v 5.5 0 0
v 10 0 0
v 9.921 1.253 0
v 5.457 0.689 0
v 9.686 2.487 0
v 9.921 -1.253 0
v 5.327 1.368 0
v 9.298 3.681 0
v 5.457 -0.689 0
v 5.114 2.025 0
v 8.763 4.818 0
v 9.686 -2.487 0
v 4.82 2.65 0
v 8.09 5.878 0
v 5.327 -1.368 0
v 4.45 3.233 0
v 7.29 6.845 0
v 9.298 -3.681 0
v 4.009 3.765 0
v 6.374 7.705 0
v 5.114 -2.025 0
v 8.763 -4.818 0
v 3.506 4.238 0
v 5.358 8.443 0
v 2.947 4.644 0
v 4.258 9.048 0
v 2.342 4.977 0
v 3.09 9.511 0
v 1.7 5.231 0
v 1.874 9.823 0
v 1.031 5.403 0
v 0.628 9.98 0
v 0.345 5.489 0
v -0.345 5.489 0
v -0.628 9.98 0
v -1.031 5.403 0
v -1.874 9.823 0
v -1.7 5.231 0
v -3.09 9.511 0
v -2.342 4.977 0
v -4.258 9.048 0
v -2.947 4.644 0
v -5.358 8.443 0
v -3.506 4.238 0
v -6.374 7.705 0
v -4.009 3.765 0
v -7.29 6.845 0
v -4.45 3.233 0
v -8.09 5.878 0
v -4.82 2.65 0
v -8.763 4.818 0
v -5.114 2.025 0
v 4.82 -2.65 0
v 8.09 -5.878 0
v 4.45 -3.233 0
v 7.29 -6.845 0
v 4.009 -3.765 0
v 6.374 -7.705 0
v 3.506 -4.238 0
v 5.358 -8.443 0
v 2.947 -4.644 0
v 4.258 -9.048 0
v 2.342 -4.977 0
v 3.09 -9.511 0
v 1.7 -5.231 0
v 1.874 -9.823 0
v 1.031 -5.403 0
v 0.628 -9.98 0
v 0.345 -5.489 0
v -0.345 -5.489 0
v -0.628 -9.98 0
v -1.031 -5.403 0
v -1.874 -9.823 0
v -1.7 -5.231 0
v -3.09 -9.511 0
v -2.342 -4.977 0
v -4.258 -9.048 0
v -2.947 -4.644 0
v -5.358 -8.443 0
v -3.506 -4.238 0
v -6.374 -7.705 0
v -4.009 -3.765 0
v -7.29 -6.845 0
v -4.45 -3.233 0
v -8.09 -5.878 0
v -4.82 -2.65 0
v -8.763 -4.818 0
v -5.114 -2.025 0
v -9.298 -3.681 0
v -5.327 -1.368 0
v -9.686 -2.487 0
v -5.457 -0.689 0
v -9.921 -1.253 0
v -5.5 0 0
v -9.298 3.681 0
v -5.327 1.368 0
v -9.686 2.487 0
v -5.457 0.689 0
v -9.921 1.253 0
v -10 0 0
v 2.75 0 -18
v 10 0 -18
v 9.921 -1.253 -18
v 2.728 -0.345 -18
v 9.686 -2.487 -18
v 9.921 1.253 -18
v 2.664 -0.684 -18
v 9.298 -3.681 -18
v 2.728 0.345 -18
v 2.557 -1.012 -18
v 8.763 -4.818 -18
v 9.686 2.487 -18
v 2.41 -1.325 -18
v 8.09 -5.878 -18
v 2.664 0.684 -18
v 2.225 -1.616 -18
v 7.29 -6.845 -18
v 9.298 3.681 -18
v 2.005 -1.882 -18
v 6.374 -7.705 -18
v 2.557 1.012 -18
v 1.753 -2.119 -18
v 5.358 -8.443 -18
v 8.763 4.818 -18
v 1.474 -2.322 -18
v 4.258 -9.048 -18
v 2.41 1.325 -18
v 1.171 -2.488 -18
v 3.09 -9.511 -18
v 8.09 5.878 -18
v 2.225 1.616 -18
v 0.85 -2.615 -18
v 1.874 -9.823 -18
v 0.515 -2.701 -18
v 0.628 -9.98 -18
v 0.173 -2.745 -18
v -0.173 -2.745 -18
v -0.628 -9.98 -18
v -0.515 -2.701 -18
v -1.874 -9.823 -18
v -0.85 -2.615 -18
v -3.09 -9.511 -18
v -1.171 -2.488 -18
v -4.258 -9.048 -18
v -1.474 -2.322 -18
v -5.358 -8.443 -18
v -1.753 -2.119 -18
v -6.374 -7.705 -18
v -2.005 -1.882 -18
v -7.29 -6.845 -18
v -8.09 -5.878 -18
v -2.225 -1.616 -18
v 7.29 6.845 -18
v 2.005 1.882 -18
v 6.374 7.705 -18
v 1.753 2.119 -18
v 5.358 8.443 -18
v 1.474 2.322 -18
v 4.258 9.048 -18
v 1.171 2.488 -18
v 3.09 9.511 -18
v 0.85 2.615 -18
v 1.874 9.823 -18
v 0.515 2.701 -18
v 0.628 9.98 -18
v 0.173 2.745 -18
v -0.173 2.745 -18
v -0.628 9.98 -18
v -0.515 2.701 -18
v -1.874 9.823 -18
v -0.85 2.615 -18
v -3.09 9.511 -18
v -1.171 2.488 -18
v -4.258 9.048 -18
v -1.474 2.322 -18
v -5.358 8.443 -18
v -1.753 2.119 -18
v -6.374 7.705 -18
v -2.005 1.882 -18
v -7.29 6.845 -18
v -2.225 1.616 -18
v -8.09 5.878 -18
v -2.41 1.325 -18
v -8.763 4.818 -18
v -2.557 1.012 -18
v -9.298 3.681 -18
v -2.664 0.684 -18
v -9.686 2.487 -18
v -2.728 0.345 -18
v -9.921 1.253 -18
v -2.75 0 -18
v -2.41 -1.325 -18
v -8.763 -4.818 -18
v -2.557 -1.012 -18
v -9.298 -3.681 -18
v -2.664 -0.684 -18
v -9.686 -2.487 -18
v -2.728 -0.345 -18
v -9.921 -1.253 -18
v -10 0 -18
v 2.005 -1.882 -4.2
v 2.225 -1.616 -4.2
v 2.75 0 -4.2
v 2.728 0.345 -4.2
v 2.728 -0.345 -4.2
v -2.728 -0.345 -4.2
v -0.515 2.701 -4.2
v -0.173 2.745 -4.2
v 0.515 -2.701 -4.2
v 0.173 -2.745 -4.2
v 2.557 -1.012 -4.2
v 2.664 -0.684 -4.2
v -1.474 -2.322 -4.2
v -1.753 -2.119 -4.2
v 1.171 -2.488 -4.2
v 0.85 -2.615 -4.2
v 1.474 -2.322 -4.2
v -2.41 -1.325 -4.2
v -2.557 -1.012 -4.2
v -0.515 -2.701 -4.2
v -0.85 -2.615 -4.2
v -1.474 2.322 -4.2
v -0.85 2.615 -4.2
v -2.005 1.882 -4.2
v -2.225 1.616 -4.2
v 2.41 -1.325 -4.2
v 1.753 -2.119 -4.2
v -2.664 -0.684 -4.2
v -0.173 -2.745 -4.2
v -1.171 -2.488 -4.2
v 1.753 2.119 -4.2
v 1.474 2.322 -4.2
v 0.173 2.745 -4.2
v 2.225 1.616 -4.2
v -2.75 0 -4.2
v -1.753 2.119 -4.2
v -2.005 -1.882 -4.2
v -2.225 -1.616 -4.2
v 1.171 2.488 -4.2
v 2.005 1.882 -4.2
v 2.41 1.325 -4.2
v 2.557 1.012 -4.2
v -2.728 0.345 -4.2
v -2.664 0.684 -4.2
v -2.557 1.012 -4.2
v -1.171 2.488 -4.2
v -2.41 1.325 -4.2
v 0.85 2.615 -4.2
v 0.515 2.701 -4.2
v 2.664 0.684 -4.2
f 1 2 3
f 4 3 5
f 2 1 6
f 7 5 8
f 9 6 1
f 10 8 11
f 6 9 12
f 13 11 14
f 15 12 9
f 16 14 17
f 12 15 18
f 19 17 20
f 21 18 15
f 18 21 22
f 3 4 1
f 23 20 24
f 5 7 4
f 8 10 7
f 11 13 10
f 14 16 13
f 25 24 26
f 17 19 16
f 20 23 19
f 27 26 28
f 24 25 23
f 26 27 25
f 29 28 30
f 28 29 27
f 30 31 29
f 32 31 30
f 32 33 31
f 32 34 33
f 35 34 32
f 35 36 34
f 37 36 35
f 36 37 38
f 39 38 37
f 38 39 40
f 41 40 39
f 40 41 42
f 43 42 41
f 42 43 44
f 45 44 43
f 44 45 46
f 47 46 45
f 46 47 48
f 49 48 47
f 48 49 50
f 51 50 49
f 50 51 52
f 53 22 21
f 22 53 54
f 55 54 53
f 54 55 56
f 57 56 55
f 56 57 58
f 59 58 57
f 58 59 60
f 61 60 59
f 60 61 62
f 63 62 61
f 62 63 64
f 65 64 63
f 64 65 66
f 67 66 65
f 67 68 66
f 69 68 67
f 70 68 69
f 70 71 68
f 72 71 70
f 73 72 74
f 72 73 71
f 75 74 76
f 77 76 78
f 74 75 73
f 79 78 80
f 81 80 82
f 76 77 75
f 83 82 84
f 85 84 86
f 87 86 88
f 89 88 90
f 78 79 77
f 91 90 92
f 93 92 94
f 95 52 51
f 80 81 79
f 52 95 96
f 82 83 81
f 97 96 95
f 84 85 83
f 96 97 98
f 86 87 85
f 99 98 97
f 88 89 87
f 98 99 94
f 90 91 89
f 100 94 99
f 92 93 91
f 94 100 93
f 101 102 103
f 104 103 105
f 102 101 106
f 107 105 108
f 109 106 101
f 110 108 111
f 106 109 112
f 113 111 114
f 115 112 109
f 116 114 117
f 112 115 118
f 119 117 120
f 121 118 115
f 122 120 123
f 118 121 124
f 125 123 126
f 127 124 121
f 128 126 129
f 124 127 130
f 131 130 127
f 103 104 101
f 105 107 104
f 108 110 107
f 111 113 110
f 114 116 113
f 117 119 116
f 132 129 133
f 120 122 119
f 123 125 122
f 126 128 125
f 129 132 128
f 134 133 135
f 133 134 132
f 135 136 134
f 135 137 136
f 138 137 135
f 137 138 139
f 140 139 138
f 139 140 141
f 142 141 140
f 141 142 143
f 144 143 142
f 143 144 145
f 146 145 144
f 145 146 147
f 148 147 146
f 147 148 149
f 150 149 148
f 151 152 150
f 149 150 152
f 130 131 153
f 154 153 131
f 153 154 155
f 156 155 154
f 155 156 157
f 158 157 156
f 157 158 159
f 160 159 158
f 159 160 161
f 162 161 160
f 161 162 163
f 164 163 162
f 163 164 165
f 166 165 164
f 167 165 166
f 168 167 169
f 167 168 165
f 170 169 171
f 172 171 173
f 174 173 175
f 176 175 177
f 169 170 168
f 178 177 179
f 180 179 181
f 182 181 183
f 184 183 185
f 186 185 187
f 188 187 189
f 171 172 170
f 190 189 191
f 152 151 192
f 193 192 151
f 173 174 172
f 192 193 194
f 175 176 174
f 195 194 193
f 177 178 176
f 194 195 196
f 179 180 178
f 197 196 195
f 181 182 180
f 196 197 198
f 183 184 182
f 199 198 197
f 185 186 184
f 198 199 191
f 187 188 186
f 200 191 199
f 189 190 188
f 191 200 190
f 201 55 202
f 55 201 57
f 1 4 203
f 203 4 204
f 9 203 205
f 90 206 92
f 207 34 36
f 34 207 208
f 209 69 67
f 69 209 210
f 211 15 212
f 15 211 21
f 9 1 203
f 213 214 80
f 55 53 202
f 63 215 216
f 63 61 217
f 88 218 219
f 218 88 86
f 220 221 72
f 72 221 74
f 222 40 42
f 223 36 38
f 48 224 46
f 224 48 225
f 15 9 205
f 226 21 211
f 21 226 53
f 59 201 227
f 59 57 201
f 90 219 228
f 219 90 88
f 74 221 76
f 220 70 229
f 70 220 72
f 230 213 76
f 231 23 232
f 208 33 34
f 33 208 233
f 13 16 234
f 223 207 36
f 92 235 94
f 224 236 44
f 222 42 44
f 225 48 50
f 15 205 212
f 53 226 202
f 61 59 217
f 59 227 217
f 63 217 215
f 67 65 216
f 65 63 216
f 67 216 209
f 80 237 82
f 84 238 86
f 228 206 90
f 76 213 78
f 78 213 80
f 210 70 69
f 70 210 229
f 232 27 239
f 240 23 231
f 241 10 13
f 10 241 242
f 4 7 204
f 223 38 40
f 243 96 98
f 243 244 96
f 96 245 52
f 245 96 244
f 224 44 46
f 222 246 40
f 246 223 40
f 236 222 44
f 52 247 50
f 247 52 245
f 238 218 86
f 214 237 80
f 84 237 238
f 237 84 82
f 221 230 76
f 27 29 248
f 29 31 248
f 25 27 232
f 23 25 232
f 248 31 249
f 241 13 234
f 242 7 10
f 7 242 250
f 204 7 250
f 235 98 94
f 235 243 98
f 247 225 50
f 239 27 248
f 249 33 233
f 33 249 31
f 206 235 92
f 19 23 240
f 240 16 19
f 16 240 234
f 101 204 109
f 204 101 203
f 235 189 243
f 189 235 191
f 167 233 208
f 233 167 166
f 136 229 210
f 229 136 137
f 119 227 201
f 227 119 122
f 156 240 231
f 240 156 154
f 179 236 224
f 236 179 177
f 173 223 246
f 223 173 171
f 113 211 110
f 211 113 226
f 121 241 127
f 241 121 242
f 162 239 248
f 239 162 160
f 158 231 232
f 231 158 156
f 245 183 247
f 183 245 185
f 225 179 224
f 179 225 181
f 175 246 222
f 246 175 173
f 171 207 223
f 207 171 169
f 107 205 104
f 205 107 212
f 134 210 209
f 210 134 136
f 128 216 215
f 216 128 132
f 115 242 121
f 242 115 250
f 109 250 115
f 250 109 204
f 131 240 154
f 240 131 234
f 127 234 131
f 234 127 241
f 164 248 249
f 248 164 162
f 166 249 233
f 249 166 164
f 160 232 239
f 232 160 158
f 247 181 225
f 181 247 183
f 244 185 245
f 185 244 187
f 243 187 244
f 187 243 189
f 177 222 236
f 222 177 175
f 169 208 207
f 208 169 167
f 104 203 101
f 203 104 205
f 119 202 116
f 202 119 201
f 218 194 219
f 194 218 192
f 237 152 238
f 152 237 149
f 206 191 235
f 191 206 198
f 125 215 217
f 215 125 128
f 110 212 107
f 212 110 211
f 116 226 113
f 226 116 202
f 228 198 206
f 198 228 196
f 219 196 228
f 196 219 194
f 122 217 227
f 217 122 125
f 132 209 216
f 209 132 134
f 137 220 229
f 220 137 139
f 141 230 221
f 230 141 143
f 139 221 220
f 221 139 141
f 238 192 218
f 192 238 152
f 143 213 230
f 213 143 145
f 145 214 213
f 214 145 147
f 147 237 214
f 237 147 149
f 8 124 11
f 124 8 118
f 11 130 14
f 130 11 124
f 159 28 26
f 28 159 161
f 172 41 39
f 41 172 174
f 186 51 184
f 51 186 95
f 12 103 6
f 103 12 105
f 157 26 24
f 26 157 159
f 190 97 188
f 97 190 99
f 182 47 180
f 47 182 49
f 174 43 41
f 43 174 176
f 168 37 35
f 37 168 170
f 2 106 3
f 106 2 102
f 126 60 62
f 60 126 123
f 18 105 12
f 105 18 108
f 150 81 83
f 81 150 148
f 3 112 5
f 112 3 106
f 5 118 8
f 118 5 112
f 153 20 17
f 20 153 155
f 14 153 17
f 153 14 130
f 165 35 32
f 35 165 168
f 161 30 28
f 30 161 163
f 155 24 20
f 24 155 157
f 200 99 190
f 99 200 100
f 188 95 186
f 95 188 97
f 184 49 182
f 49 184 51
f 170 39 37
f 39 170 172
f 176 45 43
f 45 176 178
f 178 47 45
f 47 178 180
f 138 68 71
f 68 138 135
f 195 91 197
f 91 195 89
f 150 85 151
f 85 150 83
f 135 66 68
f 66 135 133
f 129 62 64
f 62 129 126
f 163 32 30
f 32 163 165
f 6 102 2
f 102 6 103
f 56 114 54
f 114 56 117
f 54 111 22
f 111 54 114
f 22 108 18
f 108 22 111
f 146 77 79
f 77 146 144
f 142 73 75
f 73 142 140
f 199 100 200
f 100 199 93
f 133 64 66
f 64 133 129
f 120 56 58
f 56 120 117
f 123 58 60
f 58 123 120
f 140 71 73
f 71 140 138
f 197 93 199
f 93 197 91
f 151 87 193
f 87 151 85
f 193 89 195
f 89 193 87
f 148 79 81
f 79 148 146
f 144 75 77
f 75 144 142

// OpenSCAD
$fn = 50;


difference() {
	union() {
		translate(v = [0, 0, -18.0000000000]) {
			cylinder(h = 18, r = 10.0000000000);
		}
		cylinder(h = 0, r = 20.0000000000);
	}
	union() {
		translate(v = [0, 0, 0]) {
			rotate(a = [0, 0, 0]) {
				difference() {
					union() {
						#translate(v = [0, 0, -18.0000000000]) {
							cylinder(h = 18, r = 2.2500000000);
						}
						#translate(v = [0, 0, -4.2000000000]) {
							cylinder(h = 4.2000000000, r1 = 2.7500000000, r2 = 5.5000000000);
						}
						#translate(v = [0, 0, -18.0000000000]) {
							cylinder(h = 18, r = 2.7500000000);
						}
						#translate(v = [0, 0, -18.0000000000]) {
							cylinder(h = 18, r = 2.2500000000);
						}
					}
					union();
				}
			}
		}
	}
}
